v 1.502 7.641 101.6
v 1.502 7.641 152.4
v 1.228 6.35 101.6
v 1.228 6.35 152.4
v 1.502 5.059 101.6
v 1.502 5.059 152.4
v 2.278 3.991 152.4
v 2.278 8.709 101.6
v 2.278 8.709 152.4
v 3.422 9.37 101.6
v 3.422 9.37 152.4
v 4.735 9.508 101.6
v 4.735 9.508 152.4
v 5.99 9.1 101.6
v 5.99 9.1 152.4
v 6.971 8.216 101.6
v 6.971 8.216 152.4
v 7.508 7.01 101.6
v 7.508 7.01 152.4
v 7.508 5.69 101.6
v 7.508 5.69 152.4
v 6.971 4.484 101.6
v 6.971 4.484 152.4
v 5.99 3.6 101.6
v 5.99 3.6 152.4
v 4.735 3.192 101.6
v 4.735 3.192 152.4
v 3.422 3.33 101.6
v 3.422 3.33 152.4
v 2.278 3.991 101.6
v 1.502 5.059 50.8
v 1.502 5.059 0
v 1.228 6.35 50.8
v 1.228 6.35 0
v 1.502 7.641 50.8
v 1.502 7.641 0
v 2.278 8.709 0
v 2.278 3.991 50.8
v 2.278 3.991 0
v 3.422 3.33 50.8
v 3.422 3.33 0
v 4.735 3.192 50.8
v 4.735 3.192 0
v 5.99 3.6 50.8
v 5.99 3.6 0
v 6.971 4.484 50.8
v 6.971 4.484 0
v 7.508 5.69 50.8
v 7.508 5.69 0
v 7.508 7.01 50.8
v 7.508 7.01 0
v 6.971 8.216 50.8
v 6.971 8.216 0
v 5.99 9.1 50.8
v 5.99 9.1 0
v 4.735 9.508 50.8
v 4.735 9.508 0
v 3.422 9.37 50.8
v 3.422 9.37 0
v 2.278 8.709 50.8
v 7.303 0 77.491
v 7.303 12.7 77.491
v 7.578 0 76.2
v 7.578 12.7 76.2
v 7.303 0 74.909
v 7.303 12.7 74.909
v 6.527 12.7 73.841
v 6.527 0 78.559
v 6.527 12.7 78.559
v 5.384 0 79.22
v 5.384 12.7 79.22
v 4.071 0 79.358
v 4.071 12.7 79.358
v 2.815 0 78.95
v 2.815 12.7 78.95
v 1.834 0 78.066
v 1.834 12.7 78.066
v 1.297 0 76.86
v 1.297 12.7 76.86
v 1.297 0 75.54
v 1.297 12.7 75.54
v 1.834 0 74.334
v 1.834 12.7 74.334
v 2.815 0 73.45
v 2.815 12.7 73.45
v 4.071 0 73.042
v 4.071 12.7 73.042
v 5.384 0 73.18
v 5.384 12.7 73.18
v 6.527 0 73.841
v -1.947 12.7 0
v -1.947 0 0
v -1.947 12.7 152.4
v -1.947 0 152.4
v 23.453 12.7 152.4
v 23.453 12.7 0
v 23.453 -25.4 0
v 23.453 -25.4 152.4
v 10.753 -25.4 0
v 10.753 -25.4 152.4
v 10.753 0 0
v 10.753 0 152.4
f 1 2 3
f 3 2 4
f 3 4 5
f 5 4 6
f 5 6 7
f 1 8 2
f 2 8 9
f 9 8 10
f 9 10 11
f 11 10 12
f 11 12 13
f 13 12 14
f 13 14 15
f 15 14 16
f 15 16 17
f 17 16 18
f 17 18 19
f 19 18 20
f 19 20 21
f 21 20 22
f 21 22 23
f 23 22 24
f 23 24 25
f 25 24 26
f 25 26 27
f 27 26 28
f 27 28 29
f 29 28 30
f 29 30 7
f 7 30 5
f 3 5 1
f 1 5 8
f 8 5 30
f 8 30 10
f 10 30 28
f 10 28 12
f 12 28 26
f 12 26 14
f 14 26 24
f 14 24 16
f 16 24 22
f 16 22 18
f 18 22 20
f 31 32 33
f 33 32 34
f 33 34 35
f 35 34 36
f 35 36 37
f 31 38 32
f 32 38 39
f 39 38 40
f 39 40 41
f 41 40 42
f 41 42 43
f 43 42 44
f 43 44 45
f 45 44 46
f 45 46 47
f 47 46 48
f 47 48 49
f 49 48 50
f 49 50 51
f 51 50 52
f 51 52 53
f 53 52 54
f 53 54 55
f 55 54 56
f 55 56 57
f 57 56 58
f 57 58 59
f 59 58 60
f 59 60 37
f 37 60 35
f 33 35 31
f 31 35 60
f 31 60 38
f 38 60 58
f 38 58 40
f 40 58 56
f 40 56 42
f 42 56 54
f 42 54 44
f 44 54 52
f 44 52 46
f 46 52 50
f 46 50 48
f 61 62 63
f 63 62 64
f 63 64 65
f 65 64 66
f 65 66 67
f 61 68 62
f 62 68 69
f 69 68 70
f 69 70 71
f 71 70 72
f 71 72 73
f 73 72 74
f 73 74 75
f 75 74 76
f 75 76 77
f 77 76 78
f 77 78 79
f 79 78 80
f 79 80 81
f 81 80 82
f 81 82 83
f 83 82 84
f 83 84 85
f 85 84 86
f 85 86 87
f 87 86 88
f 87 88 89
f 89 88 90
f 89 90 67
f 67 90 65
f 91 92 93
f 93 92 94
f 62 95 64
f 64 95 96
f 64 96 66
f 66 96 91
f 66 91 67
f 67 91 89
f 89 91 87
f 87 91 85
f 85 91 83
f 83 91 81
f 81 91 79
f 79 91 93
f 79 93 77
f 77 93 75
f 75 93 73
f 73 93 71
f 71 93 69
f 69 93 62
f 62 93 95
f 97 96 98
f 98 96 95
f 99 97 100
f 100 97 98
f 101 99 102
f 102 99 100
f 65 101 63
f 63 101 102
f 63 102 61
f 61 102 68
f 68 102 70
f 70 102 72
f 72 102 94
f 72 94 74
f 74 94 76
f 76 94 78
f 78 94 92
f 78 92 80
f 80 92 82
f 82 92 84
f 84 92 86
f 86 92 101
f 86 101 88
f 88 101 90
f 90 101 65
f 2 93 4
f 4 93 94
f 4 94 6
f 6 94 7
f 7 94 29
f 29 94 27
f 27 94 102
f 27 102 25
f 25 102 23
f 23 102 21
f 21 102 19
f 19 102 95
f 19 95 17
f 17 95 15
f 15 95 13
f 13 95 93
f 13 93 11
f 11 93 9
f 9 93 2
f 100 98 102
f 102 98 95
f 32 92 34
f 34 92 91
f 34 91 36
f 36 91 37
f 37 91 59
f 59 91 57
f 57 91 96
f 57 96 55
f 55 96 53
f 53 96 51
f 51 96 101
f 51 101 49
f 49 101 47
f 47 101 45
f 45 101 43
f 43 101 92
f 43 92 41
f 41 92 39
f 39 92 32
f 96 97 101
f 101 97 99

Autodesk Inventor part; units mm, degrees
ref_plane "YZ Plane" through (0, 0, 0) normal (1, 0, 0) x (0, 1, 0)
ref_plane "XZ Plane" through (0, 0, 0) normal (0, 1, 0) x (-1, 0, 0)
ref_plane "XY Plane" through (0, 0, 0) normal (0, 0, 1) x (1, 0, 0)
sketch "Sketch1" plane through (0, 0, 0) normal (0, 0, 1) x (1, 0, 0)
  line L0 (0, 0) -> (10.7529, 0)
  line L1 (10.7529, 0) -> (10.7529, -25.4)
  line L2 (10.7529, -25.4) -> (23.4529, -25.4)
  line L3 (23.4529, -25.4) -> (23.4529, 12.7)
  line L4 (23.4529, 12.7) -> (-1.9471, 12.7)
  line L5 (-1.9471, 12.7) -> (-1.9471, 0)
  line L6 (-1.9471, 0) -> (10.7529, 0)
  dimension "d0" = 25.4
  dimension "d1" = 12.7
  dimension "d2" = 12.7
  dimension "d3" = 12.7
extrude "Extrusion1" add sketch "Sketch1" along normal blind 152.4
sketch "Sketch2" plane through (-1.9471, 12.7, 0) normal (0, 1, 0) x (1, 0, 0)
  circle A0 centre (6.35, -76.2) radius 3.175
  line L0 (25.4, -152.4) -> (0, -152.4) projected
  line L1 (0, 0) -> (0, -152.4) projected
  point P0 (1.9471, 0)
  dimension "d6" = 6.35
  dimension "d7" = 76.2
  dimension "d8" = 6.35
extrude "Extrusion2" cut sketch "Sketch2" against normal blind 12.7
sketch "Sketch3" plane through (0, 0, 0) normal (0, 0, -1) x (-1, 0, 0)
  circle A0 centre (-4.4029, 6.35) radius 3.175
  line L0 (1.9471, 0) -> (-10.7529, 0) projected
  line L1 (1.9471, 12.7) -> (1.9471, 0) projected
  point P0 (0, 0)
  dimension "d11" = 6.35
  dimension "d12" = 6.35
  dimension "d13" = 6.35
extrude "Extrusion3" cut sketch "Sketch3" against normal blind 50.8
ref_plane "Work Plane1" through (-1.9471, 12.7, 76.2) normal (0, 0, -1) x (1, 0, 0)
mirror "Mirror1" about plane through (-1.9471, 12.7, 76.2) normal (0, 0, -1) of "Extrusion3"
properties part number "FuselageWingBoxJoint"
